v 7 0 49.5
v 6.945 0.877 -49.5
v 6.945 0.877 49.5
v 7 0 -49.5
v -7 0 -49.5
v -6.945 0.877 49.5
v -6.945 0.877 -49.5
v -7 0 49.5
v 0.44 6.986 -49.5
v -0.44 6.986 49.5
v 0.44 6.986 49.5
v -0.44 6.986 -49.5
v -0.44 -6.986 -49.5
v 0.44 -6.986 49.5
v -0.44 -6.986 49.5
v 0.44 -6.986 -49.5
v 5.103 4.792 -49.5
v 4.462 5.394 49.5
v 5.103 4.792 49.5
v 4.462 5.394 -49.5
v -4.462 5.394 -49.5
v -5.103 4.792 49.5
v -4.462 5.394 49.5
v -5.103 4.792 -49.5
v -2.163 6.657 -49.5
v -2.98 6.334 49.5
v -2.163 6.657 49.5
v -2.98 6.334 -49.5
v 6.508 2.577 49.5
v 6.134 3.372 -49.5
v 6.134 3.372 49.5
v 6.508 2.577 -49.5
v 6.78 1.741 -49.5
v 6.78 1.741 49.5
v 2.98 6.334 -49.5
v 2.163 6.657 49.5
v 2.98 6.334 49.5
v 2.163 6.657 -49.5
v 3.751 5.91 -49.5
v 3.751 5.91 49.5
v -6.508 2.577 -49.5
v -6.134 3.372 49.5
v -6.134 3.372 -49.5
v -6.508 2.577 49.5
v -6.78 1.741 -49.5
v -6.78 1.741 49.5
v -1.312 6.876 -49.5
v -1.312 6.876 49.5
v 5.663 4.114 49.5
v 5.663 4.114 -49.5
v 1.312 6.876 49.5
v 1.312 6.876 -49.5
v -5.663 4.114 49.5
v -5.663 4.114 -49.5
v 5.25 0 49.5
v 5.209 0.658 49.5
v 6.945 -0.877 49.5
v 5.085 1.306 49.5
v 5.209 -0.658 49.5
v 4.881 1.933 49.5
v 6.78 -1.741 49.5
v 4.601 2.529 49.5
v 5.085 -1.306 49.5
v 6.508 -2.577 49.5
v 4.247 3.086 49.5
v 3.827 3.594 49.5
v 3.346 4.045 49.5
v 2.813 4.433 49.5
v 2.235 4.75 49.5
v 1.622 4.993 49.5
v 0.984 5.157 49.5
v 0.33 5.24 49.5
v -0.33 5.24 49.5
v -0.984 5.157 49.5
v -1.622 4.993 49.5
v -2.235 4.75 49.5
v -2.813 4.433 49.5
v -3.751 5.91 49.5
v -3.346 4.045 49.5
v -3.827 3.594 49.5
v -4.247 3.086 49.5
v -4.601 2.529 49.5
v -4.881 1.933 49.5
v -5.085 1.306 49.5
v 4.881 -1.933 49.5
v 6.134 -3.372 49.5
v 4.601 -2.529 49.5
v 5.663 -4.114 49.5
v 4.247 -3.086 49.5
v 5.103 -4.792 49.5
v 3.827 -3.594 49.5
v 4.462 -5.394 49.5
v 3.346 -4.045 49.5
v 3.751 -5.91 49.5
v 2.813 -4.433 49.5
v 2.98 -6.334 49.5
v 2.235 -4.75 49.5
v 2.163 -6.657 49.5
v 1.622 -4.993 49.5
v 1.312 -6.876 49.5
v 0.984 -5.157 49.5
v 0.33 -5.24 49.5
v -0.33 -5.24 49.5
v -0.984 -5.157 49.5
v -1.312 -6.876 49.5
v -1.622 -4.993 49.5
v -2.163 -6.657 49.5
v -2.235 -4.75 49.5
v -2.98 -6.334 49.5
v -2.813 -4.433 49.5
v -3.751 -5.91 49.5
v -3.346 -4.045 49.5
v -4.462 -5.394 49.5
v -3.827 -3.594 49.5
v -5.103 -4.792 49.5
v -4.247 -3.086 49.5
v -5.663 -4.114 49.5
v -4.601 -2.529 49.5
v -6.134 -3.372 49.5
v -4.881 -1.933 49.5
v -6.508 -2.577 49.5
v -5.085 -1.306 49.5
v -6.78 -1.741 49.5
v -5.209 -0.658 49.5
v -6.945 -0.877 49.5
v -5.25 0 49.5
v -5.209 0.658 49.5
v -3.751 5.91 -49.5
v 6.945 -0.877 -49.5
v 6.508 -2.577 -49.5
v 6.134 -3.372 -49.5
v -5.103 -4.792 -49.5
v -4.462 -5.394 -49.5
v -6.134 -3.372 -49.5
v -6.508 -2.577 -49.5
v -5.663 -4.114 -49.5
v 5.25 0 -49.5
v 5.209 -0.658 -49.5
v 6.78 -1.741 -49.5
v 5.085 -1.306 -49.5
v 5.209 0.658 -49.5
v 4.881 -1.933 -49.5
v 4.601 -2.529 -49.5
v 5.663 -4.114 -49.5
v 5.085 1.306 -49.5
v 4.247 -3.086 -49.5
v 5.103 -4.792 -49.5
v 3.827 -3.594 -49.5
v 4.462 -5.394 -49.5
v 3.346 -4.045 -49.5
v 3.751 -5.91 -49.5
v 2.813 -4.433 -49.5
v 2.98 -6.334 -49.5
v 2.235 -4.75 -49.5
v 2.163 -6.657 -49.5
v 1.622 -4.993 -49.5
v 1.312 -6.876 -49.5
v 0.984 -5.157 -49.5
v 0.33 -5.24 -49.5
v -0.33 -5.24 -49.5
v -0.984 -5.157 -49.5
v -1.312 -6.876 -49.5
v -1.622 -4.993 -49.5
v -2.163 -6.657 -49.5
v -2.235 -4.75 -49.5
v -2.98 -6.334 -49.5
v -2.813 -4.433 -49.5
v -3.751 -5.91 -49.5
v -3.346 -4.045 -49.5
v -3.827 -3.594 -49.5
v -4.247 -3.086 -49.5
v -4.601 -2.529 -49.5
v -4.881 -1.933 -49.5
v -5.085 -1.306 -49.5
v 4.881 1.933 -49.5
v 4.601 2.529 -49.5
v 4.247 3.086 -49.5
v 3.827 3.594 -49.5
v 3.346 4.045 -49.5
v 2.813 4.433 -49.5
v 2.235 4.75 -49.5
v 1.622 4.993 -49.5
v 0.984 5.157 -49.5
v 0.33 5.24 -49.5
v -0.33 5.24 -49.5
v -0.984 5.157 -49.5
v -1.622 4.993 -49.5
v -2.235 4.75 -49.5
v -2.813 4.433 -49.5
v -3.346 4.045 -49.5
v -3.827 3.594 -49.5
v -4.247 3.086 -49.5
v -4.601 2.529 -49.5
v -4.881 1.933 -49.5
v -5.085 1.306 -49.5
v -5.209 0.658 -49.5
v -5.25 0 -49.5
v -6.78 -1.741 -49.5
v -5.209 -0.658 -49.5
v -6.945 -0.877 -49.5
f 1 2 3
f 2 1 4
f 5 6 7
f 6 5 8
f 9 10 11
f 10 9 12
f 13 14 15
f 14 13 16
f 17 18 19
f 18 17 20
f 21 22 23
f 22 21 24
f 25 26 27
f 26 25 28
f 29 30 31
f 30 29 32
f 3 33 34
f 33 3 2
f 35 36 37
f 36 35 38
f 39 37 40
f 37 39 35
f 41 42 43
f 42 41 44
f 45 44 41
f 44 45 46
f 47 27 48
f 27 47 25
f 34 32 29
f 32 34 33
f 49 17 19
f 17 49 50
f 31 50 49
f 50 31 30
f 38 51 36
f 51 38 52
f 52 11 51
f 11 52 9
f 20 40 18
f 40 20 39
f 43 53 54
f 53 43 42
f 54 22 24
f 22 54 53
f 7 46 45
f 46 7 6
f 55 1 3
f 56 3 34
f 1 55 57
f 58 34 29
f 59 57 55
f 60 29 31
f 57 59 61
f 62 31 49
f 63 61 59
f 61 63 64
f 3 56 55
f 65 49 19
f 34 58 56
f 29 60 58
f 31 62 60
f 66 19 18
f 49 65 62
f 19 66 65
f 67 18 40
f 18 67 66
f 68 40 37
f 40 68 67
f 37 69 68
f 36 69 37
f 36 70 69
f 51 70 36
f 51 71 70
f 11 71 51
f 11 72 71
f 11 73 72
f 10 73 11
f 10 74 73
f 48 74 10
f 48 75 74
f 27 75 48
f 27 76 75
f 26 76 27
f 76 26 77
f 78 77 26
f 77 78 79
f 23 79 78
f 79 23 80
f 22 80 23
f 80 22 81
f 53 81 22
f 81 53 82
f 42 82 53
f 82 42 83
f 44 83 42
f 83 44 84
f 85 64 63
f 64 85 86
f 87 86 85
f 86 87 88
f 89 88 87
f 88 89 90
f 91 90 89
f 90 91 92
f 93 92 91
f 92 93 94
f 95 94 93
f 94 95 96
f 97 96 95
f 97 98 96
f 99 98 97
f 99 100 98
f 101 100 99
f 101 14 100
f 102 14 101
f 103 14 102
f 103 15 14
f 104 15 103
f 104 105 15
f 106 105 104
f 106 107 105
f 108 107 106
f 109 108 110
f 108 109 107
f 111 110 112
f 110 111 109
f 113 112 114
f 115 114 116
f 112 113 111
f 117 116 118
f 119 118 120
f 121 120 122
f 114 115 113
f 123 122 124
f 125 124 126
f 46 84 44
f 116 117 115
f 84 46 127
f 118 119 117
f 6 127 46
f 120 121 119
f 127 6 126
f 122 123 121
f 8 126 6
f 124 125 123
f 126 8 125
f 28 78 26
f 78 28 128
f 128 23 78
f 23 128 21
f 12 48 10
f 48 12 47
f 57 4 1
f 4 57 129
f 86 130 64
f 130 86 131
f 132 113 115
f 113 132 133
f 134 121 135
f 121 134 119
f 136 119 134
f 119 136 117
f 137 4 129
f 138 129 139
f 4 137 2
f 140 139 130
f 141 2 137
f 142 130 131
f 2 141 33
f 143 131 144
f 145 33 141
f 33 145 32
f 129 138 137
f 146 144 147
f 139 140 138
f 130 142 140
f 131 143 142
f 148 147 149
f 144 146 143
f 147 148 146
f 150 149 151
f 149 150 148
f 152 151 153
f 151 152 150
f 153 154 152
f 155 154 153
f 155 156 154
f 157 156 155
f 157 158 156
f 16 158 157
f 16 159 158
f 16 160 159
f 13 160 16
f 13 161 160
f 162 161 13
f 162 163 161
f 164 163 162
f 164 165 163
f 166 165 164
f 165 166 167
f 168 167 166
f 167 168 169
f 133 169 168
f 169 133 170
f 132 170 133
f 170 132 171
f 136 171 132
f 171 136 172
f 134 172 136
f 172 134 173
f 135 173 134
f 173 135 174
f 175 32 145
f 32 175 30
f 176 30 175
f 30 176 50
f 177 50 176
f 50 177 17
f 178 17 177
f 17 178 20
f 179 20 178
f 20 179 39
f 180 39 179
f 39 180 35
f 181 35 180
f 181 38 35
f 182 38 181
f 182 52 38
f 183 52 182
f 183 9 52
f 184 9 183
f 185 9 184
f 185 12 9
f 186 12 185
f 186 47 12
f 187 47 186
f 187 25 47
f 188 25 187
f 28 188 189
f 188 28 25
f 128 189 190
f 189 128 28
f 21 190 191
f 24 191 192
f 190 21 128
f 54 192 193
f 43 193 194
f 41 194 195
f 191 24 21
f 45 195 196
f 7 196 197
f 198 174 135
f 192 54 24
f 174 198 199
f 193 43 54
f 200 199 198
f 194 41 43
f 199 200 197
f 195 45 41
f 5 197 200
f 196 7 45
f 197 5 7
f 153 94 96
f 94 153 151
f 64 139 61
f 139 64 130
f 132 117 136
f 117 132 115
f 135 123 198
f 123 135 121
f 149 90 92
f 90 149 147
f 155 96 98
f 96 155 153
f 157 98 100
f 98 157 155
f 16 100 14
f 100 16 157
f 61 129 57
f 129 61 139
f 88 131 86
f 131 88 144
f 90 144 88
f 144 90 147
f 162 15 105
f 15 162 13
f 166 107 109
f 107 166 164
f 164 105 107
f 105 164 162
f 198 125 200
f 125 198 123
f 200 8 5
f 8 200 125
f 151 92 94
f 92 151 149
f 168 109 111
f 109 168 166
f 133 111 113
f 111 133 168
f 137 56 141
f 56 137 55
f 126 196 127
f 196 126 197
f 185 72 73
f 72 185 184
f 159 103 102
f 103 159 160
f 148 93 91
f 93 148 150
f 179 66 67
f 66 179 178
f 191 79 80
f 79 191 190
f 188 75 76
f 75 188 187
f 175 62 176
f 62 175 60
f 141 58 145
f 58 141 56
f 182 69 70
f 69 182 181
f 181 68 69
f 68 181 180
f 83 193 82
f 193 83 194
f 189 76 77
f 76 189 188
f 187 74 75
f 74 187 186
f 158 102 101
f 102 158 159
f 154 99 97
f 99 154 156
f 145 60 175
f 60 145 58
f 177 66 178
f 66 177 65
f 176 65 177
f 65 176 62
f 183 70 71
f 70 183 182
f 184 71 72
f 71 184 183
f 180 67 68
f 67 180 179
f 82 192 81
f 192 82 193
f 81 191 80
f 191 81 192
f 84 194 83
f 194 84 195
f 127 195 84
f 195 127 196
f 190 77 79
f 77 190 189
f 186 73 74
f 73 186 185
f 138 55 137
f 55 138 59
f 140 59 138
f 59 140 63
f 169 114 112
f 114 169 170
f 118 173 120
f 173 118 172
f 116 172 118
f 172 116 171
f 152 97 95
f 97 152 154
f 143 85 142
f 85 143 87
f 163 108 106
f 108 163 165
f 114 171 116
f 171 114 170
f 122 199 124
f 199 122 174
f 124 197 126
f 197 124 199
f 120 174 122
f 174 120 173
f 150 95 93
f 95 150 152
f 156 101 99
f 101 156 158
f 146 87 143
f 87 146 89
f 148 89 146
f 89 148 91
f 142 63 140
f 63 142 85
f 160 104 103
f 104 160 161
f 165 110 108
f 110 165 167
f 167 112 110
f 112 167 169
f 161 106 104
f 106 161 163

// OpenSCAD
$fn = 50;


difference() {
	union() {
		translate(v = [0, 0, -49.5000000000]) {
			cylinder(h = 99, r = 7.0000000000);
		}
	}
	union() {
		translate(v = [0, 0, -100.0000000000]) {
			cylinder(h = 200, r = 5.2500000000);
		}
	}
}
